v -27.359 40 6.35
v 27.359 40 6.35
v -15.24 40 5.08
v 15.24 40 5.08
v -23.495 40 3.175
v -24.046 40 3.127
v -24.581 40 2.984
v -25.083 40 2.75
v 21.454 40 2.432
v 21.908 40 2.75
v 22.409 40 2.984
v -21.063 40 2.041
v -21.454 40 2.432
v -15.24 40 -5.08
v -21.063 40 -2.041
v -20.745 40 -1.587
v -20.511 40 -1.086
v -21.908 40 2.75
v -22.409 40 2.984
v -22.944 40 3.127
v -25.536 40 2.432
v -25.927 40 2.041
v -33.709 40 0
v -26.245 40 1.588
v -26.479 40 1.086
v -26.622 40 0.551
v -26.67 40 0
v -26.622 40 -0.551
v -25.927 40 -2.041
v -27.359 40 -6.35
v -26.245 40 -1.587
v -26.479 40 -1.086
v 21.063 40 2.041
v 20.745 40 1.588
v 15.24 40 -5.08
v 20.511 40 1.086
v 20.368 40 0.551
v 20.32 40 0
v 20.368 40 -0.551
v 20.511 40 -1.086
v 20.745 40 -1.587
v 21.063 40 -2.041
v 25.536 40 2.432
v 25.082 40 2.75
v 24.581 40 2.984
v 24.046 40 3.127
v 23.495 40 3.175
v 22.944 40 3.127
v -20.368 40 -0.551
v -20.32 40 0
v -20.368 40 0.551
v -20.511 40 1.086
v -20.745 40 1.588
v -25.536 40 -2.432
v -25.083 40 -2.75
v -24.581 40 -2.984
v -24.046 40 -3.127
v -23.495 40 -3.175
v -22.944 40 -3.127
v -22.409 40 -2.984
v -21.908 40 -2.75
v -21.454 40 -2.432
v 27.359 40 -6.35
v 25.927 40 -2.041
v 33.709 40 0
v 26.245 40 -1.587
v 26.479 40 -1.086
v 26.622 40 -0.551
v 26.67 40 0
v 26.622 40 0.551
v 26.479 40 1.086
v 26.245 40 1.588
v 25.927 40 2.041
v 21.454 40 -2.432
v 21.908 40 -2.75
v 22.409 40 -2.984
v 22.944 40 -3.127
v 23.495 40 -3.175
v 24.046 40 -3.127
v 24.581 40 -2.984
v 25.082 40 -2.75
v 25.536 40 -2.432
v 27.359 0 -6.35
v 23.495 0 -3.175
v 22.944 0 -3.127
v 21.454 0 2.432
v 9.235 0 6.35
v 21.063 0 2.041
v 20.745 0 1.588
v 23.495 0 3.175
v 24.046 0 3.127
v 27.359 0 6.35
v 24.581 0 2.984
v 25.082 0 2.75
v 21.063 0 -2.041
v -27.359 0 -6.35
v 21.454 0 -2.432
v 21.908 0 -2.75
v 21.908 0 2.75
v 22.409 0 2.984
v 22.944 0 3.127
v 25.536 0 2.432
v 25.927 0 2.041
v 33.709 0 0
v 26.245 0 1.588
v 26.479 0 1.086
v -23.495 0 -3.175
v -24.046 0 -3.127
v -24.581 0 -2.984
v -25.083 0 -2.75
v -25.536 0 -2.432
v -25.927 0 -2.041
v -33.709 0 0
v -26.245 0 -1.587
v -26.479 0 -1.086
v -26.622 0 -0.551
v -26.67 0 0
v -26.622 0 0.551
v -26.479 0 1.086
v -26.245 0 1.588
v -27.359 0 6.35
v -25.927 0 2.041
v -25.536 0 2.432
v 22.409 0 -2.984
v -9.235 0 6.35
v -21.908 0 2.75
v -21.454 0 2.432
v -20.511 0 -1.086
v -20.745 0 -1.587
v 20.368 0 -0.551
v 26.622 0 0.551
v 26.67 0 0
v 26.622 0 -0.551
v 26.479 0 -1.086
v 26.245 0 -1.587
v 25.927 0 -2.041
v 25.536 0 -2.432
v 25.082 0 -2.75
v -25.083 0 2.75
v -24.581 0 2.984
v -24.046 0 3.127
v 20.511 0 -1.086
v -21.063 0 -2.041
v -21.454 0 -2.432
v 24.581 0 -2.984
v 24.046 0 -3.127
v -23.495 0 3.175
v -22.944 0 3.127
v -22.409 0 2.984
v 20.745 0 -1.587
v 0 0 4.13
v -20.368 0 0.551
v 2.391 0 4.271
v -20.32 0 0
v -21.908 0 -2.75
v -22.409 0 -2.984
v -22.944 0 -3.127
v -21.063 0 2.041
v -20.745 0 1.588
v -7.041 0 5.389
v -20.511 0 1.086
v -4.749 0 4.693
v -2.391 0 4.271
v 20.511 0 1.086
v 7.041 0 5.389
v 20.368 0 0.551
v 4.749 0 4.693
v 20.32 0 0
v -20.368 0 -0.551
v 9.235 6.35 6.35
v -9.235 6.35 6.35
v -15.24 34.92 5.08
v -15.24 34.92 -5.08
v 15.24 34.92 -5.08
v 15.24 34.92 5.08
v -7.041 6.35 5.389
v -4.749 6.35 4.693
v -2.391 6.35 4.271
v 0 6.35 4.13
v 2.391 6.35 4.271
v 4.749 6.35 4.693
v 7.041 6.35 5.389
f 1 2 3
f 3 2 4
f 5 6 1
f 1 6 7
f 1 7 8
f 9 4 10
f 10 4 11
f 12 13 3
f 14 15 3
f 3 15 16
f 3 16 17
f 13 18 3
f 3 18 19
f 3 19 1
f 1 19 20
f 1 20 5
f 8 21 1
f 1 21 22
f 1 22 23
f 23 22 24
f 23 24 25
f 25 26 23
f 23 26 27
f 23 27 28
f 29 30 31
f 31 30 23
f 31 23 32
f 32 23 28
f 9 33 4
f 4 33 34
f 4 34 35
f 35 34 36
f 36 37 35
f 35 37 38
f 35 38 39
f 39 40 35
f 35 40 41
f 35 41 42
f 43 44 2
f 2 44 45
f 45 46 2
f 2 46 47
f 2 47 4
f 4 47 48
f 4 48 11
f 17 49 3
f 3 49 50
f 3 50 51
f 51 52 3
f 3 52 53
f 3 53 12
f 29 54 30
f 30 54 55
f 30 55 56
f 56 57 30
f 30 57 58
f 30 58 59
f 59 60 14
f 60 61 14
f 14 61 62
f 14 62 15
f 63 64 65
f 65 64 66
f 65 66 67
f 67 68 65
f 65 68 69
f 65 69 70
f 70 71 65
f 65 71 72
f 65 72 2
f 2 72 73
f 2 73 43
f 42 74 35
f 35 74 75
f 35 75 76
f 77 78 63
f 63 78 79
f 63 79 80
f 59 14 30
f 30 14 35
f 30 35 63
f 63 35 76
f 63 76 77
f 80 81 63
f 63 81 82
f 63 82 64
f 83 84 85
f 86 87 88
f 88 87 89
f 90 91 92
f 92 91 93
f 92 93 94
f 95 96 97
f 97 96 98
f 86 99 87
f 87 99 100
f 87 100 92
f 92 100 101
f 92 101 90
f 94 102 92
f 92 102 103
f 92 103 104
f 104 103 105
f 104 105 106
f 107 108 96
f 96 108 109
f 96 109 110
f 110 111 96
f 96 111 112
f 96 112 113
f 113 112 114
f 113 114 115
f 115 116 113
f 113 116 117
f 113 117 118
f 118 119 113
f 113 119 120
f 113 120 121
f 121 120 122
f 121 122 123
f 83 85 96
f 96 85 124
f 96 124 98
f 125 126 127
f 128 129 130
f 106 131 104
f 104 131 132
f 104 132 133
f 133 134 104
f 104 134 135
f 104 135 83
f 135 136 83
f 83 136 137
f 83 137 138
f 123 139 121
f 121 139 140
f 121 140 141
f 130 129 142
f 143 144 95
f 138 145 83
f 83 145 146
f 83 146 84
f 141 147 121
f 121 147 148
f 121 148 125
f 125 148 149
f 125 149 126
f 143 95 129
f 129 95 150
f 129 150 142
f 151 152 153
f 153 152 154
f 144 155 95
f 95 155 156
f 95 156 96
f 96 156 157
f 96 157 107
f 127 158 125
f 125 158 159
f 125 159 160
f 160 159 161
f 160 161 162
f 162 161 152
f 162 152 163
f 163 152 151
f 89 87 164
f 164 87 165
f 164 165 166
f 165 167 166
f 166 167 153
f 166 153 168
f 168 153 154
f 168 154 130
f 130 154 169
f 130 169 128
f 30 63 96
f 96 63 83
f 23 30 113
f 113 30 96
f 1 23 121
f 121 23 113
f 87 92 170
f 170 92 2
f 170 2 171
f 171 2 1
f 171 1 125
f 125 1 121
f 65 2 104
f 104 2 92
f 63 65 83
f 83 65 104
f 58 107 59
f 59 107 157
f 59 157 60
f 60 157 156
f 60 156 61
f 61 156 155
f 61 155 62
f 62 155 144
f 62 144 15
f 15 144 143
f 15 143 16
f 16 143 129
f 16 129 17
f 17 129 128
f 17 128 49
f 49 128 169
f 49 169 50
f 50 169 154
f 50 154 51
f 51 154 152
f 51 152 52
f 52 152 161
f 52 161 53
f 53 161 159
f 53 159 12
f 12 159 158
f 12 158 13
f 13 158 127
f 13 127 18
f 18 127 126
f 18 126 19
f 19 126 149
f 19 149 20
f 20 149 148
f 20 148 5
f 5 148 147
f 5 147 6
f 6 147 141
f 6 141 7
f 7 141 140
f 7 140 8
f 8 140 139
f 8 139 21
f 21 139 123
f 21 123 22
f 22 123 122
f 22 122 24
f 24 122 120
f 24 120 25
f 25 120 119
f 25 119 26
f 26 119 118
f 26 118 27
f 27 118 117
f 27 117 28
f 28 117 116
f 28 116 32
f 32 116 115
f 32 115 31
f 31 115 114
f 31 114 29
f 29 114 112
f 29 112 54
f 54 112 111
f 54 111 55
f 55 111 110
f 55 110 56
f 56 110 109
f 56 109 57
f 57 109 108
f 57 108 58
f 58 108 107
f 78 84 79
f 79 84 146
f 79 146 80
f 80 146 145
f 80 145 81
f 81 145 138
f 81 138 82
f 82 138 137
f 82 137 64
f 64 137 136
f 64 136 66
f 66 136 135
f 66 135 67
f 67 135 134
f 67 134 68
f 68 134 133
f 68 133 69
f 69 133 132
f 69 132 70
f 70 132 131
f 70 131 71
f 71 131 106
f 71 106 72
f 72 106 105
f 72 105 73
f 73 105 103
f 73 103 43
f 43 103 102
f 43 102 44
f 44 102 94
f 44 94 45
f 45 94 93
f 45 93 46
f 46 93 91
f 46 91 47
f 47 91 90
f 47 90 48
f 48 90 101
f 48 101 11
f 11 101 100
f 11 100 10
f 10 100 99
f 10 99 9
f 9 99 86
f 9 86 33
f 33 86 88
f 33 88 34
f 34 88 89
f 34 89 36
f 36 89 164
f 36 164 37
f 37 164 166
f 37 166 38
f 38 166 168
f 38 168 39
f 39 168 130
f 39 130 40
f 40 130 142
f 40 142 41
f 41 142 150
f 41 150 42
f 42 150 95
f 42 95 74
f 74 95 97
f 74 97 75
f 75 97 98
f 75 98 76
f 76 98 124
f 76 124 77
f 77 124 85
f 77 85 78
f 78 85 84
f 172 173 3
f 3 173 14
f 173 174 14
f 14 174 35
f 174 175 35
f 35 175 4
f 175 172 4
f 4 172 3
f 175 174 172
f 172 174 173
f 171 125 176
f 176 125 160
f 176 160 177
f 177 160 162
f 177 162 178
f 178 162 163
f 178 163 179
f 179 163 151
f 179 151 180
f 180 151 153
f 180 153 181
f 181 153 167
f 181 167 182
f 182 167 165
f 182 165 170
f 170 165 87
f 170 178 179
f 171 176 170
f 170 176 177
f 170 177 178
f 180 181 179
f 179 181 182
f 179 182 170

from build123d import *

# Parameters (mm, degrees)
SKETCH1_R           = 3.175
BOSS_EXTRUDE1_DEPTH = 40
SKETCH2_W           = 30.48
SKETCH2_H           = 10.16
CUT_EXTRUDE1_DEPTH  = 5.08
SKETCH3_R           = 20.32
CUT_EXTRUDE2_DEPTH  = 6.35


with BuildPart() as part:
    # Sketch1 → Boss-Extrude1 (new body)
    with BuildSketch(Plane(origin=(0, 0, 0), x_dir=(1, 0, 0), z_dir=(0, 1, 0))):
        Polygon((-27.358849143, 6.35), (-33.708849143, 0), (-27.358849143, -6.35), (27.358849143, -6.35), (33.708849143, 0), (27.358849143, 6.35), align=None)
        with Locations((-23.495, 0)):
            Circle(SKETCH1_R, mode=Mode.SUBTRACT)
        with Locations((23.495, 0)):
            Circle(SKETCH1_R, mode=Mode.SUBTRACT)
    extrude(amount=BOSS_EXTRUDE1_DEPTH)

    # Sketch2 → Cut-Extrude1 (cut)
    with BuildSketch(Plane(origin=(0, 40, 0), x_dir=(1, 0, 0), z_dir=(0, 1, 0))):
        Rectangle(SKETCH2_W, SKETCH2_H)
    extrude(amount=-CUT_EXTRUDE1_DEPTH, mode=Mode.SUBTRACT)

    # Sketch3 → Cut-Extrude2 (cut)
    with BuildSketch(Plane(origin=(0, 0, 0), x_dir=(-1, 0, 0), z_dir=(0, -1, 0))):
        with Locations((0, -24.45005636)):
            Circle(SKETCH3_R)
    extrude(amount=-CUT_EXTRUDE2_DEPTH, mode=Mode.SUBTRACT)


solid = part.part
